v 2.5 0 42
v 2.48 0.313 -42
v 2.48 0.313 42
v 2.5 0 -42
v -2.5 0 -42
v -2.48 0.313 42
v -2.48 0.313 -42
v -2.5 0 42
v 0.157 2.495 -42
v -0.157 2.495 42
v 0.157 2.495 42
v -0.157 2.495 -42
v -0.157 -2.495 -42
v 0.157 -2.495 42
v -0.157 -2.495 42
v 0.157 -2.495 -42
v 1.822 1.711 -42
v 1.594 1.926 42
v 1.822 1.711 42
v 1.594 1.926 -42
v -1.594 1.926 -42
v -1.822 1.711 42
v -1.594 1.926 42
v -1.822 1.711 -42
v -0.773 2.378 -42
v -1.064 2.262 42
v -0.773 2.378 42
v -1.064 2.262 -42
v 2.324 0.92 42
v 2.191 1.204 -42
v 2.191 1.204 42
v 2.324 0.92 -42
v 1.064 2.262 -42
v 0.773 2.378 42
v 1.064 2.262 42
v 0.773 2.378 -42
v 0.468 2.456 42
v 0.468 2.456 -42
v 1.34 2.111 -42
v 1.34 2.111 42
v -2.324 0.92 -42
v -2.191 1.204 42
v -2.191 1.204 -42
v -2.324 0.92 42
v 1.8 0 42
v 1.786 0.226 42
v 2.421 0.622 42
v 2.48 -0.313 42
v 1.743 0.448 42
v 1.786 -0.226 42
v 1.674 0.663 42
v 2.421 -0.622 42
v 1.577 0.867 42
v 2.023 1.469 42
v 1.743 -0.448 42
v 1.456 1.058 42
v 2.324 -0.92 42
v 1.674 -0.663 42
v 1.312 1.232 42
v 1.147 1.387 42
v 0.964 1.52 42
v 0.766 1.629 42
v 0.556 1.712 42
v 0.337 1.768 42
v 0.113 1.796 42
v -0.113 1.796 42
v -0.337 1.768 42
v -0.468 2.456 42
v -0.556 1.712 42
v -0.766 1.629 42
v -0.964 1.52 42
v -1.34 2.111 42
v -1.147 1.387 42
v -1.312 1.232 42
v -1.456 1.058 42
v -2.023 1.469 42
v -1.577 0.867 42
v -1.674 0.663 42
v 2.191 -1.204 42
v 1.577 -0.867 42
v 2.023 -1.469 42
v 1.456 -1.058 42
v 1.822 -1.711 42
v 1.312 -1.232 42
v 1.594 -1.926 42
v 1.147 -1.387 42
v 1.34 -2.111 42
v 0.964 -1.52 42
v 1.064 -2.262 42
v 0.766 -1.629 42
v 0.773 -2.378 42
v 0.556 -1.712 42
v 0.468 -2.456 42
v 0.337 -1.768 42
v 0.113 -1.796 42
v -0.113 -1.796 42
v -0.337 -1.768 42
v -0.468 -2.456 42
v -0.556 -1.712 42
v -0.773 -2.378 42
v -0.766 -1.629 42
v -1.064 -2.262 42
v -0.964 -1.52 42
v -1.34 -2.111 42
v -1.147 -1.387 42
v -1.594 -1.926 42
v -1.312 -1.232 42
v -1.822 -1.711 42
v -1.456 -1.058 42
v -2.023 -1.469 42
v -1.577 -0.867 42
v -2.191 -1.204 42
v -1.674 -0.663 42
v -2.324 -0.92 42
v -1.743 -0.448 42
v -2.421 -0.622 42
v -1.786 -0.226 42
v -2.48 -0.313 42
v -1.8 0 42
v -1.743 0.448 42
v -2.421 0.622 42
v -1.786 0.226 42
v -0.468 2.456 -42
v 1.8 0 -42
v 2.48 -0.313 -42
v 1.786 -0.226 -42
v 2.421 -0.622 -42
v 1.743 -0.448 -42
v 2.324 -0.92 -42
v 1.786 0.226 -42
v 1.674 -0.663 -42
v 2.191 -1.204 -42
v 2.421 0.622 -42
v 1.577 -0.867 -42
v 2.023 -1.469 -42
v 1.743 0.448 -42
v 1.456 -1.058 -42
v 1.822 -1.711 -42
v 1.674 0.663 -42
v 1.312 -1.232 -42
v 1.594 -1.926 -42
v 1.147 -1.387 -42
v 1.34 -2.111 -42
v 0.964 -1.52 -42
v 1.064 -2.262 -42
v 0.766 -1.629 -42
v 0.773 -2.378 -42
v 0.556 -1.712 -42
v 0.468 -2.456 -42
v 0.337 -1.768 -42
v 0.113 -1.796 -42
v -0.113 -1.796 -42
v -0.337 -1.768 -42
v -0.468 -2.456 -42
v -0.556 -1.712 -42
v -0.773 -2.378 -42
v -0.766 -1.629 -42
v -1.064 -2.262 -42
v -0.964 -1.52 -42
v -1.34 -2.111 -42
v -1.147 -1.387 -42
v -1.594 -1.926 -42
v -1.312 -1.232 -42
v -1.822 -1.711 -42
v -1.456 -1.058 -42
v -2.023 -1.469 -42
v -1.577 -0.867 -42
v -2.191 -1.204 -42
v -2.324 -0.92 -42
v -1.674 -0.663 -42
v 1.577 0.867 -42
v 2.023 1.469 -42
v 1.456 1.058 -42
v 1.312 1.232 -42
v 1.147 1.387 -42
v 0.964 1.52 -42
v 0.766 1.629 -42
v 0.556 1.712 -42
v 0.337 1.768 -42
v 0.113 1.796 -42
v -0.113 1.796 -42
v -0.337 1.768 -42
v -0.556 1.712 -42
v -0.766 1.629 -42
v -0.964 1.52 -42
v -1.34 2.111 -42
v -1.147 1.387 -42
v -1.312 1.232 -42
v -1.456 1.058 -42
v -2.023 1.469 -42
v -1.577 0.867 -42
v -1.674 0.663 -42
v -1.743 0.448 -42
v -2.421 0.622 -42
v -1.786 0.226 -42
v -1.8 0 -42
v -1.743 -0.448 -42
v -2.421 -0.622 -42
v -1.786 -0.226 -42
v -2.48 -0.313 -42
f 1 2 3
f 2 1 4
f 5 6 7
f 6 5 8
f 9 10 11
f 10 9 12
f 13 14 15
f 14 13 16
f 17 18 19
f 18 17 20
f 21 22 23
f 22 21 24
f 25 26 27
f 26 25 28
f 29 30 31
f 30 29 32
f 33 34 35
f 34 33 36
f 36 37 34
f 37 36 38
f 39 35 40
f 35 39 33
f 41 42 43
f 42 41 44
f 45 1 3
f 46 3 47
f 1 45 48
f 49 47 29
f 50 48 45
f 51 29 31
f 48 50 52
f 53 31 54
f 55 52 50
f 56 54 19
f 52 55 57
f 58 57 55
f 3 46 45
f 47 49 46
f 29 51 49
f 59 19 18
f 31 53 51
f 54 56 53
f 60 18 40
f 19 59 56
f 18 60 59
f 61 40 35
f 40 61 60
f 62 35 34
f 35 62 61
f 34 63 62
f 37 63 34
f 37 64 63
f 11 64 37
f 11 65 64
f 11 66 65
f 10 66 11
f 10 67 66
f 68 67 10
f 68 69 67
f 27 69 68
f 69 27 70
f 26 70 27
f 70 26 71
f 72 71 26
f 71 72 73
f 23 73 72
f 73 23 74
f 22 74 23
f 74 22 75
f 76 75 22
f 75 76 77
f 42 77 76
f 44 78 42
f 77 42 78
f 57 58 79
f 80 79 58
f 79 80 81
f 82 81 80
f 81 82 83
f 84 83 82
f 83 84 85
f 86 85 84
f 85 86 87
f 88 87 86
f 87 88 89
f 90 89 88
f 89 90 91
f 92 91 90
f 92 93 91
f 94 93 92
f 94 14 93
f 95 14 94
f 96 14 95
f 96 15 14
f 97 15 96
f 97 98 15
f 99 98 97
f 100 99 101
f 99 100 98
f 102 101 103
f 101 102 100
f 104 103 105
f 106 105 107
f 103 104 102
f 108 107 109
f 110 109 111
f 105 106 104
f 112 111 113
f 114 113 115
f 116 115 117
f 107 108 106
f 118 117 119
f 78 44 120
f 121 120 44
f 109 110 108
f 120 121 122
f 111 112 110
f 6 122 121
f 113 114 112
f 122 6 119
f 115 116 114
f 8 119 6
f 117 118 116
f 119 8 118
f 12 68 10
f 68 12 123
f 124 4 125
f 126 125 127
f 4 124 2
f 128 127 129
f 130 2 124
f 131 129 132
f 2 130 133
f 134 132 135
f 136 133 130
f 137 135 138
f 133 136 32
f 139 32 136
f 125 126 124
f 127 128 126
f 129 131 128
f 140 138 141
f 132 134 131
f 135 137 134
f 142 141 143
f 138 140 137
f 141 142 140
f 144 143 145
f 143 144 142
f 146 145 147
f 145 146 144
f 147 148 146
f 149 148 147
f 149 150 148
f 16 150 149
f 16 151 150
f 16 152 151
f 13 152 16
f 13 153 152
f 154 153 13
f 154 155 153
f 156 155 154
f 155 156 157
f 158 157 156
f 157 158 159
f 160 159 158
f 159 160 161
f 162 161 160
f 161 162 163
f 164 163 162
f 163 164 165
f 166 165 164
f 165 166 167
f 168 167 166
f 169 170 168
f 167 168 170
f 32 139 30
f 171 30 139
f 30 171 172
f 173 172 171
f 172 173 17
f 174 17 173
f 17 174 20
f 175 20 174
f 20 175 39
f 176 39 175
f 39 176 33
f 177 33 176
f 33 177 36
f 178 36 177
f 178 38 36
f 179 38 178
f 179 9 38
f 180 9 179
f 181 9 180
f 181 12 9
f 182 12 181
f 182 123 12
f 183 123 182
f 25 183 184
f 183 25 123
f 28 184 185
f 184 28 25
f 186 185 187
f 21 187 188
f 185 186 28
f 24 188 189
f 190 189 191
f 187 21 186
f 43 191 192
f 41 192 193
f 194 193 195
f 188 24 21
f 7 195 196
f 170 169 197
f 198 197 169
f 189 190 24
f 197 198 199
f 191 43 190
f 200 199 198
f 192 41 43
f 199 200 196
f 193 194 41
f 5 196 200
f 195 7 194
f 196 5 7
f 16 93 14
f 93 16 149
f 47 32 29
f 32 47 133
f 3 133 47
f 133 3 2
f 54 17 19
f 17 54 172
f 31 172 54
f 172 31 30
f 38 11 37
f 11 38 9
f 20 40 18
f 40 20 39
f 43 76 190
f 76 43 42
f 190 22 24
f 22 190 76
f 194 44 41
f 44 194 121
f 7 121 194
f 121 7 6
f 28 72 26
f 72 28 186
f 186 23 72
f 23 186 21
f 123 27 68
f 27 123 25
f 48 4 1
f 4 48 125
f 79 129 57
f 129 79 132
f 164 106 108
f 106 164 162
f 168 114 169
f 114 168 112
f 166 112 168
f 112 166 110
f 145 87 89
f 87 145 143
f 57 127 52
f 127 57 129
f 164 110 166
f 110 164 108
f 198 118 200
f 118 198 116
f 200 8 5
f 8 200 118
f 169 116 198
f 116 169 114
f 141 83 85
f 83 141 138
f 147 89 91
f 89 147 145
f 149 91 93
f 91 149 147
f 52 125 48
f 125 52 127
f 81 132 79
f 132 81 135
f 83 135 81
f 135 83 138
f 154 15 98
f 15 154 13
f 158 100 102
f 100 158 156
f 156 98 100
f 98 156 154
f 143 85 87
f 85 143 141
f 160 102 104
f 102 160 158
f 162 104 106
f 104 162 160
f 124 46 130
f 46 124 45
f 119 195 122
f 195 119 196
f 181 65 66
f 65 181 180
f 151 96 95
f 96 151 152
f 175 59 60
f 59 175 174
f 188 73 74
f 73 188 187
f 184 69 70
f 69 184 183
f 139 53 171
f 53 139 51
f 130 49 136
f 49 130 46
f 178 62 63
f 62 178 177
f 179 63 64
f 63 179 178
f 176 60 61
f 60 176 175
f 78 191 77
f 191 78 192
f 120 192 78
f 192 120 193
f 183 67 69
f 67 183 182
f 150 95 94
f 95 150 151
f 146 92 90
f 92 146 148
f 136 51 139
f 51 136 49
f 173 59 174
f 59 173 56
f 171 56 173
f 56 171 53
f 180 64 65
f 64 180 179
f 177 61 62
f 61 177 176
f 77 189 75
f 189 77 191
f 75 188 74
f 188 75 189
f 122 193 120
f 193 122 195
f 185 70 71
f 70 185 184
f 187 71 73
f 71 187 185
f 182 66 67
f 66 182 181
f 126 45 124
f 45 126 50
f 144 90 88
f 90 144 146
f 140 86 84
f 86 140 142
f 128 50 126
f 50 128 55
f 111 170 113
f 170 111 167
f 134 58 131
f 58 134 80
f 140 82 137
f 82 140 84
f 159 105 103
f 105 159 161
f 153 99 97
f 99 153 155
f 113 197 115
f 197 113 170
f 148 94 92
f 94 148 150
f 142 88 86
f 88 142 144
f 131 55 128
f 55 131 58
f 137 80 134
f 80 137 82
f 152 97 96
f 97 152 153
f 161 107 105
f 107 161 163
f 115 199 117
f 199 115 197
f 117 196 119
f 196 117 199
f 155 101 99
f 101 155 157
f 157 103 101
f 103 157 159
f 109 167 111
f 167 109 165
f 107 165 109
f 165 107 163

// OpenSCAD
$fn = 50;


difference() {
	union() {
		translate(v = [0, 0, -42.0000000000]) {
			cylinder(h = 84, r = 2.5000000000);
		}
	}
	union() {
		translate(v = [0, 0, -100.0000000000]) {
			cylinder(h = 200, r = 1.8000000000);
		}
	}
}
